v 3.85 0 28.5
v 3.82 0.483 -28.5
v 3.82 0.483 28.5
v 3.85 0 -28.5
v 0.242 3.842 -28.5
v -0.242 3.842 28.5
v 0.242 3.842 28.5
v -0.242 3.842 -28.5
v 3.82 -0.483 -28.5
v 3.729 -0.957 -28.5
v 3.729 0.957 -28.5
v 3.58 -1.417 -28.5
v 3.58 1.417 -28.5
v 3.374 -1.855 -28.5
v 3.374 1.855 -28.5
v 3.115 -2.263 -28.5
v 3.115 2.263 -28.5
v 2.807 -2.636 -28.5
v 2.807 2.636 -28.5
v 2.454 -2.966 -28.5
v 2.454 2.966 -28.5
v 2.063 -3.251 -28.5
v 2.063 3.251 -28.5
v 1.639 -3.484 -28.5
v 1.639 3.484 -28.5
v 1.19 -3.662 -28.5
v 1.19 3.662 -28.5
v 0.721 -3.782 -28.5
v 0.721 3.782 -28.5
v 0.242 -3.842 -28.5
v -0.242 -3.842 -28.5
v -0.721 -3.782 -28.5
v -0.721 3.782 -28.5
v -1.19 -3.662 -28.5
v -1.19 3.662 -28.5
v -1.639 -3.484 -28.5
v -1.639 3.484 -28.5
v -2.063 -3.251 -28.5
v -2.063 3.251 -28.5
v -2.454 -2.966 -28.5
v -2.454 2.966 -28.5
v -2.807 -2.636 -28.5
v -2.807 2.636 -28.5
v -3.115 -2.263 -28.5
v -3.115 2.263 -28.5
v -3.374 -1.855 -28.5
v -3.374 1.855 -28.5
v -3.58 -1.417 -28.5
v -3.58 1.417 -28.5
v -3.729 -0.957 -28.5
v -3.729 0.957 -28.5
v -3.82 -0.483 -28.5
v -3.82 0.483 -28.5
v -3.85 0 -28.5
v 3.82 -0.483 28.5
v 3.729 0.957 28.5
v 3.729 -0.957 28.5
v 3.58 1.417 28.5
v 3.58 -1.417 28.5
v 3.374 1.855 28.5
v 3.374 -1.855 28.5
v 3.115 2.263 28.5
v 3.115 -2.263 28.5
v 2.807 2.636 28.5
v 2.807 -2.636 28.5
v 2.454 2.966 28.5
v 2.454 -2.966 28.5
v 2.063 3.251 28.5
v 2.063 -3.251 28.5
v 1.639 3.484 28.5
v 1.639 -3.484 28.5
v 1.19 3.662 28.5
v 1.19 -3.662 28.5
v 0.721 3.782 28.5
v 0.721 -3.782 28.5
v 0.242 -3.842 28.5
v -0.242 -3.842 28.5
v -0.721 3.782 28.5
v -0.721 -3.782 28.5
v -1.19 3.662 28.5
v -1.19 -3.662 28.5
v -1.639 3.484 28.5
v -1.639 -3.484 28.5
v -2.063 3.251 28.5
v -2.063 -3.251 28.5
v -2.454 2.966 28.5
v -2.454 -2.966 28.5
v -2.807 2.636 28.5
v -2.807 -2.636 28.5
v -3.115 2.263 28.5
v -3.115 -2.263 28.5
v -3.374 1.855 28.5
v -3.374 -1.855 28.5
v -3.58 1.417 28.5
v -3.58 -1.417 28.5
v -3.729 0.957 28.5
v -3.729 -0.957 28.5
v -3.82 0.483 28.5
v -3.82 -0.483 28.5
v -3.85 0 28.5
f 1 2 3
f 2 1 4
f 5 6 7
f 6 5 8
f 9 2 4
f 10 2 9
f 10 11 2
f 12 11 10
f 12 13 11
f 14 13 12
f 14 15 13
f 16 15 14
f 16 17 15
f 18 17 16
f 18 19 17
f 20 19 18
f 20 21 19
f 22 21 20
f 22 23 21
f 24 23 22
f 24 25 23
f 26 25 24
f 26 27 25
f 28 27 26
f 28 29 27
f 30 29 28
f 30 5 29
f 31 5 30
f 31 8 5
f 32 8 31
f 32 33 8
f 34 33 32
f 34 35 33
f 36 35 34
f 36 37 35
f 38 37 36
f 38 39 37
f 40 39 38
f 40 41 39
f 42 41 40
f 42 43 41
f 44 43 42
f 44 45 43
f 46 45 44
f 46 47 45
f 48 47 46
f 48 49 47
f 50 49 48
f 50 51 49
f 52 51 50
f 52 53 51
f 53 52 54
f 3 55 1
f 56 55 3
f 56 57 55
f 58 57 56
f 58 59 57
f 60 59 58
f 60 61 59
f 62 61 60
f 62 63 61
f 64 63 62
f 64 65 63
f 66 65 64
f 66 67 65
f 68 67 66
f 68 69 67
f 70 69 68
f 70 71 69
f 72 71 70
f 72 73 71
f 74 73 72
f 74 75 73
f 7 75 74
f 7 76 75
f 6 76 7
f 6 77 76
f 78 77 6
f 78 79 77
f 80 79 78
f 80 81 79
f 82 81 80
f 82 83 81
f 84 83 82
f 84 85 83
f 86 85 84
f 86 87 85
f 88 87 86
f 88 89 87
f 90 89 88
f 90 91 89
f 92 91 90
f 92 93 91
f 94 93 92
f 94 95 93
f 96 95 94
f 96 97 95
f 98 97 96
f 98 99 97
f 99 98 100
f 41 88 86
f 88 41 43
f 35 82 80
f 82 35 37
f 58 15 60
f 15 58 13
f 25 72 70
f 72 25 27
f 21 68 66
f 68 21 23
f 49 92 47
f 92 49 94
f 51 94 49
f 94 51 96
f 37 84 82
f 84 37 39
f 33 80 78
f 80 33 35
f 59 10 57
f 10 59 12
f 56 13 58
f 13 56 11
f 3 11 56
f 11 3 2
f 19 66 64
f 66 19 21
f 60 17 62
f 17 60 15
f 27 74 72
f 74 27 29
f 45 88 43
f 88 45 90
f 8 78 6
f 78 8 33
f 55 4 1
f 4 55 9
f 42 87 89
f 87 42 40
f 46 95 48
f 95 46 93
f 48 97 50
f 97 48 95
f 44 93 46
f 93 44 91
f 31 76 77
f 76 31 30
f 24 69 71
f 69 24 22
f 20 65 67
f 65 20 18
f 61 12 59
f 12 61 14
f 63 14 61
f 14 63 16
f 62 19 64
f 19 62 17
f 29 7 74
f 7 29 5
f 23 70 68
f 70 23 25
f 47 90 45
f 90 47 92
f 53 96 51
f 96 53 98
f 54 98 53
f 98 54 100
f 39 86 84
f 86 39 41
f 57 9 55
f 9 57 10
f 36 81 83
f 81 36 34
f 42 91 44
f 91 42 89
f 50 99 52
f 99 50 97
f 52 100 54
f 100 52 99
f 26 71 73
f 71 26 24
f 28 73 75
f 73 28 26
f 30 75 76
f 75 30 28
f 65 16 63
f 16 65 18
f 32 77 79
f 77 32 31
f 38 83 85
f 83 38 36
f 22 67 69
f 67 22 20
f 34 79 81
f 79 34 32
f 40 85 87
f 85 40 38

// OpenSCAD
$fn = 50;


difference() {
	union() {
		translate(v = [0, 0, -28.5000000000]) {
			cylinder(h = 57, r = 3.8500000000);
		}
	}
	union() {
		translate(v = [0, 0, -100.0000000000]) {
			cylinder(h = 200, r = 0);
		}
	}
}
